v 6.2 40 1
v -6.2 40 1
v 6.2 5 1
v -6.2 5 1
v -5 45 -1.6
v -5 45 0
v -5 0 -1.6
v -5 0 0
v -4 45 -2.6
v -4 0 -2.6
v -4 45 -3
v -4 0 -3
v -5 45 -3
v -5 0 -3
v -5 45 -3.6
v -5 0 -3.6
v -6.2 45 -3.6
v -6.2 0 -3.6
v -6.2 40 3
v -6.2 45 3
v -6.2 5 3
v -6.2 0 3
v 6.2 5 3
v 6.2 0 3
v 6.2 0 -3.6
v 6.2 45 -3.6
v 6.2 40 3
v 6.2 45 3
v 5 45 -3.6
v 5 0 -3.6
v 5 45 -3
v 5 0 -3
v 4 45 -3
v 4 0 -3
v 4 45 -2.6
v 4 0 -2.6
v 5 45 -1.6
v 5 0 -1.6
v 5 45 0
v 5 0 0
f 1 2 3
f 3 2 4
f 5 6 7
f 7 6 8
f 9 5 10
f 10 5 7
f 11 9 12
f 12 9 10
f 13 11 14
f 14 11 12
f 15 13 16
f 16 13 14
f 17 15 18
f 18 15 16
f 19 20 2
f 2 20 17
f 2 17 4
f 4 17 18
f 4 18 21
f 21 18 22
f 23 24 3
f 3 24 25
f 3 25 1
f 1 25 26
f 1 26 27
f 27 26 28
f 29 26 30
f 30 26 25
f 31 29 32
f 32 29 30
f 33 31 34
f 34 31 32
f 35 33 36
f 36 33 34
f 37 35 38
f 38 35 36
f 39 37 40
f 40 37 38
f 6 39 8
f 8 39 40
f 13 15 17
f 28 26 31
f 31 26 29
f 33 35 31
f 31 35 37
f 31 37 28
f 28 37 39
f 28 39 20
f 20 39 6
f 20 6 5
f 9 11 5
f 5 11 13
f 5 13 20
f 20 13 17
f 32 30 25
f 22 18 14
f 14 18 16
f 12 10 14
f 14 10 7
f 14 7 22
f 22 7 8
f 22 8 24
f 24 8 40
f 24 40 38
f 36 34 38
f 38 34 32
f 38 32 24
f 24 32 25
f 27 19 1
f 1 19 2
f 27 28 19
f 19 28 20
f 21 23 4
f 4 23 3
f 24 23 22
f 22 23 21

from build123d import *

# Parameters (mm, degrees)
P_IDAT_VYSUNUT_M1_DEPTH = 45
SKICA3_W                = 12.4
SKICA3_H                = 5
P_IDAT_VYSUNUT_M2_DEPTH = 2


with BuildPart() as part:
    # Skica1 → Přidat vysunutím1 (new body)
    with BuildSketch(Plane(origin=(0, 0, 0), x_dir=(1, 0, 0), z_dir=(0, 1, 0))):
        Polygon((-5, 0), (5, 0), (5, 1.6), (4, 2.6), (4, 3), (5, 3), (5, 3.6), (6.2, 3.6), (6.2, -1), (-6.2, -1), (-6.2, 3.6), (-5, 3.6), (-5, 3), (-4, 3), (-4, 2.6), (-5, 1.6), align=None)
    extrude(amount=P_IDAT_VYSUNUT_M1_DEPTH)

    # Skica3 → Přidat vysunutím2 (add)
    with BuildSketch(Plane.XY.offset(1)):
        with Locations((0, 42.5)):
            Rectangle(SKICA3_W, SKICA3_H)
        with Locations((0, 2.5)):
            Rectangle(SKICA3_W, SKICA3_H)
    extrude(amount=P_IDAT_VYSUNUT_M2_DEPTH)


solid = part.part
